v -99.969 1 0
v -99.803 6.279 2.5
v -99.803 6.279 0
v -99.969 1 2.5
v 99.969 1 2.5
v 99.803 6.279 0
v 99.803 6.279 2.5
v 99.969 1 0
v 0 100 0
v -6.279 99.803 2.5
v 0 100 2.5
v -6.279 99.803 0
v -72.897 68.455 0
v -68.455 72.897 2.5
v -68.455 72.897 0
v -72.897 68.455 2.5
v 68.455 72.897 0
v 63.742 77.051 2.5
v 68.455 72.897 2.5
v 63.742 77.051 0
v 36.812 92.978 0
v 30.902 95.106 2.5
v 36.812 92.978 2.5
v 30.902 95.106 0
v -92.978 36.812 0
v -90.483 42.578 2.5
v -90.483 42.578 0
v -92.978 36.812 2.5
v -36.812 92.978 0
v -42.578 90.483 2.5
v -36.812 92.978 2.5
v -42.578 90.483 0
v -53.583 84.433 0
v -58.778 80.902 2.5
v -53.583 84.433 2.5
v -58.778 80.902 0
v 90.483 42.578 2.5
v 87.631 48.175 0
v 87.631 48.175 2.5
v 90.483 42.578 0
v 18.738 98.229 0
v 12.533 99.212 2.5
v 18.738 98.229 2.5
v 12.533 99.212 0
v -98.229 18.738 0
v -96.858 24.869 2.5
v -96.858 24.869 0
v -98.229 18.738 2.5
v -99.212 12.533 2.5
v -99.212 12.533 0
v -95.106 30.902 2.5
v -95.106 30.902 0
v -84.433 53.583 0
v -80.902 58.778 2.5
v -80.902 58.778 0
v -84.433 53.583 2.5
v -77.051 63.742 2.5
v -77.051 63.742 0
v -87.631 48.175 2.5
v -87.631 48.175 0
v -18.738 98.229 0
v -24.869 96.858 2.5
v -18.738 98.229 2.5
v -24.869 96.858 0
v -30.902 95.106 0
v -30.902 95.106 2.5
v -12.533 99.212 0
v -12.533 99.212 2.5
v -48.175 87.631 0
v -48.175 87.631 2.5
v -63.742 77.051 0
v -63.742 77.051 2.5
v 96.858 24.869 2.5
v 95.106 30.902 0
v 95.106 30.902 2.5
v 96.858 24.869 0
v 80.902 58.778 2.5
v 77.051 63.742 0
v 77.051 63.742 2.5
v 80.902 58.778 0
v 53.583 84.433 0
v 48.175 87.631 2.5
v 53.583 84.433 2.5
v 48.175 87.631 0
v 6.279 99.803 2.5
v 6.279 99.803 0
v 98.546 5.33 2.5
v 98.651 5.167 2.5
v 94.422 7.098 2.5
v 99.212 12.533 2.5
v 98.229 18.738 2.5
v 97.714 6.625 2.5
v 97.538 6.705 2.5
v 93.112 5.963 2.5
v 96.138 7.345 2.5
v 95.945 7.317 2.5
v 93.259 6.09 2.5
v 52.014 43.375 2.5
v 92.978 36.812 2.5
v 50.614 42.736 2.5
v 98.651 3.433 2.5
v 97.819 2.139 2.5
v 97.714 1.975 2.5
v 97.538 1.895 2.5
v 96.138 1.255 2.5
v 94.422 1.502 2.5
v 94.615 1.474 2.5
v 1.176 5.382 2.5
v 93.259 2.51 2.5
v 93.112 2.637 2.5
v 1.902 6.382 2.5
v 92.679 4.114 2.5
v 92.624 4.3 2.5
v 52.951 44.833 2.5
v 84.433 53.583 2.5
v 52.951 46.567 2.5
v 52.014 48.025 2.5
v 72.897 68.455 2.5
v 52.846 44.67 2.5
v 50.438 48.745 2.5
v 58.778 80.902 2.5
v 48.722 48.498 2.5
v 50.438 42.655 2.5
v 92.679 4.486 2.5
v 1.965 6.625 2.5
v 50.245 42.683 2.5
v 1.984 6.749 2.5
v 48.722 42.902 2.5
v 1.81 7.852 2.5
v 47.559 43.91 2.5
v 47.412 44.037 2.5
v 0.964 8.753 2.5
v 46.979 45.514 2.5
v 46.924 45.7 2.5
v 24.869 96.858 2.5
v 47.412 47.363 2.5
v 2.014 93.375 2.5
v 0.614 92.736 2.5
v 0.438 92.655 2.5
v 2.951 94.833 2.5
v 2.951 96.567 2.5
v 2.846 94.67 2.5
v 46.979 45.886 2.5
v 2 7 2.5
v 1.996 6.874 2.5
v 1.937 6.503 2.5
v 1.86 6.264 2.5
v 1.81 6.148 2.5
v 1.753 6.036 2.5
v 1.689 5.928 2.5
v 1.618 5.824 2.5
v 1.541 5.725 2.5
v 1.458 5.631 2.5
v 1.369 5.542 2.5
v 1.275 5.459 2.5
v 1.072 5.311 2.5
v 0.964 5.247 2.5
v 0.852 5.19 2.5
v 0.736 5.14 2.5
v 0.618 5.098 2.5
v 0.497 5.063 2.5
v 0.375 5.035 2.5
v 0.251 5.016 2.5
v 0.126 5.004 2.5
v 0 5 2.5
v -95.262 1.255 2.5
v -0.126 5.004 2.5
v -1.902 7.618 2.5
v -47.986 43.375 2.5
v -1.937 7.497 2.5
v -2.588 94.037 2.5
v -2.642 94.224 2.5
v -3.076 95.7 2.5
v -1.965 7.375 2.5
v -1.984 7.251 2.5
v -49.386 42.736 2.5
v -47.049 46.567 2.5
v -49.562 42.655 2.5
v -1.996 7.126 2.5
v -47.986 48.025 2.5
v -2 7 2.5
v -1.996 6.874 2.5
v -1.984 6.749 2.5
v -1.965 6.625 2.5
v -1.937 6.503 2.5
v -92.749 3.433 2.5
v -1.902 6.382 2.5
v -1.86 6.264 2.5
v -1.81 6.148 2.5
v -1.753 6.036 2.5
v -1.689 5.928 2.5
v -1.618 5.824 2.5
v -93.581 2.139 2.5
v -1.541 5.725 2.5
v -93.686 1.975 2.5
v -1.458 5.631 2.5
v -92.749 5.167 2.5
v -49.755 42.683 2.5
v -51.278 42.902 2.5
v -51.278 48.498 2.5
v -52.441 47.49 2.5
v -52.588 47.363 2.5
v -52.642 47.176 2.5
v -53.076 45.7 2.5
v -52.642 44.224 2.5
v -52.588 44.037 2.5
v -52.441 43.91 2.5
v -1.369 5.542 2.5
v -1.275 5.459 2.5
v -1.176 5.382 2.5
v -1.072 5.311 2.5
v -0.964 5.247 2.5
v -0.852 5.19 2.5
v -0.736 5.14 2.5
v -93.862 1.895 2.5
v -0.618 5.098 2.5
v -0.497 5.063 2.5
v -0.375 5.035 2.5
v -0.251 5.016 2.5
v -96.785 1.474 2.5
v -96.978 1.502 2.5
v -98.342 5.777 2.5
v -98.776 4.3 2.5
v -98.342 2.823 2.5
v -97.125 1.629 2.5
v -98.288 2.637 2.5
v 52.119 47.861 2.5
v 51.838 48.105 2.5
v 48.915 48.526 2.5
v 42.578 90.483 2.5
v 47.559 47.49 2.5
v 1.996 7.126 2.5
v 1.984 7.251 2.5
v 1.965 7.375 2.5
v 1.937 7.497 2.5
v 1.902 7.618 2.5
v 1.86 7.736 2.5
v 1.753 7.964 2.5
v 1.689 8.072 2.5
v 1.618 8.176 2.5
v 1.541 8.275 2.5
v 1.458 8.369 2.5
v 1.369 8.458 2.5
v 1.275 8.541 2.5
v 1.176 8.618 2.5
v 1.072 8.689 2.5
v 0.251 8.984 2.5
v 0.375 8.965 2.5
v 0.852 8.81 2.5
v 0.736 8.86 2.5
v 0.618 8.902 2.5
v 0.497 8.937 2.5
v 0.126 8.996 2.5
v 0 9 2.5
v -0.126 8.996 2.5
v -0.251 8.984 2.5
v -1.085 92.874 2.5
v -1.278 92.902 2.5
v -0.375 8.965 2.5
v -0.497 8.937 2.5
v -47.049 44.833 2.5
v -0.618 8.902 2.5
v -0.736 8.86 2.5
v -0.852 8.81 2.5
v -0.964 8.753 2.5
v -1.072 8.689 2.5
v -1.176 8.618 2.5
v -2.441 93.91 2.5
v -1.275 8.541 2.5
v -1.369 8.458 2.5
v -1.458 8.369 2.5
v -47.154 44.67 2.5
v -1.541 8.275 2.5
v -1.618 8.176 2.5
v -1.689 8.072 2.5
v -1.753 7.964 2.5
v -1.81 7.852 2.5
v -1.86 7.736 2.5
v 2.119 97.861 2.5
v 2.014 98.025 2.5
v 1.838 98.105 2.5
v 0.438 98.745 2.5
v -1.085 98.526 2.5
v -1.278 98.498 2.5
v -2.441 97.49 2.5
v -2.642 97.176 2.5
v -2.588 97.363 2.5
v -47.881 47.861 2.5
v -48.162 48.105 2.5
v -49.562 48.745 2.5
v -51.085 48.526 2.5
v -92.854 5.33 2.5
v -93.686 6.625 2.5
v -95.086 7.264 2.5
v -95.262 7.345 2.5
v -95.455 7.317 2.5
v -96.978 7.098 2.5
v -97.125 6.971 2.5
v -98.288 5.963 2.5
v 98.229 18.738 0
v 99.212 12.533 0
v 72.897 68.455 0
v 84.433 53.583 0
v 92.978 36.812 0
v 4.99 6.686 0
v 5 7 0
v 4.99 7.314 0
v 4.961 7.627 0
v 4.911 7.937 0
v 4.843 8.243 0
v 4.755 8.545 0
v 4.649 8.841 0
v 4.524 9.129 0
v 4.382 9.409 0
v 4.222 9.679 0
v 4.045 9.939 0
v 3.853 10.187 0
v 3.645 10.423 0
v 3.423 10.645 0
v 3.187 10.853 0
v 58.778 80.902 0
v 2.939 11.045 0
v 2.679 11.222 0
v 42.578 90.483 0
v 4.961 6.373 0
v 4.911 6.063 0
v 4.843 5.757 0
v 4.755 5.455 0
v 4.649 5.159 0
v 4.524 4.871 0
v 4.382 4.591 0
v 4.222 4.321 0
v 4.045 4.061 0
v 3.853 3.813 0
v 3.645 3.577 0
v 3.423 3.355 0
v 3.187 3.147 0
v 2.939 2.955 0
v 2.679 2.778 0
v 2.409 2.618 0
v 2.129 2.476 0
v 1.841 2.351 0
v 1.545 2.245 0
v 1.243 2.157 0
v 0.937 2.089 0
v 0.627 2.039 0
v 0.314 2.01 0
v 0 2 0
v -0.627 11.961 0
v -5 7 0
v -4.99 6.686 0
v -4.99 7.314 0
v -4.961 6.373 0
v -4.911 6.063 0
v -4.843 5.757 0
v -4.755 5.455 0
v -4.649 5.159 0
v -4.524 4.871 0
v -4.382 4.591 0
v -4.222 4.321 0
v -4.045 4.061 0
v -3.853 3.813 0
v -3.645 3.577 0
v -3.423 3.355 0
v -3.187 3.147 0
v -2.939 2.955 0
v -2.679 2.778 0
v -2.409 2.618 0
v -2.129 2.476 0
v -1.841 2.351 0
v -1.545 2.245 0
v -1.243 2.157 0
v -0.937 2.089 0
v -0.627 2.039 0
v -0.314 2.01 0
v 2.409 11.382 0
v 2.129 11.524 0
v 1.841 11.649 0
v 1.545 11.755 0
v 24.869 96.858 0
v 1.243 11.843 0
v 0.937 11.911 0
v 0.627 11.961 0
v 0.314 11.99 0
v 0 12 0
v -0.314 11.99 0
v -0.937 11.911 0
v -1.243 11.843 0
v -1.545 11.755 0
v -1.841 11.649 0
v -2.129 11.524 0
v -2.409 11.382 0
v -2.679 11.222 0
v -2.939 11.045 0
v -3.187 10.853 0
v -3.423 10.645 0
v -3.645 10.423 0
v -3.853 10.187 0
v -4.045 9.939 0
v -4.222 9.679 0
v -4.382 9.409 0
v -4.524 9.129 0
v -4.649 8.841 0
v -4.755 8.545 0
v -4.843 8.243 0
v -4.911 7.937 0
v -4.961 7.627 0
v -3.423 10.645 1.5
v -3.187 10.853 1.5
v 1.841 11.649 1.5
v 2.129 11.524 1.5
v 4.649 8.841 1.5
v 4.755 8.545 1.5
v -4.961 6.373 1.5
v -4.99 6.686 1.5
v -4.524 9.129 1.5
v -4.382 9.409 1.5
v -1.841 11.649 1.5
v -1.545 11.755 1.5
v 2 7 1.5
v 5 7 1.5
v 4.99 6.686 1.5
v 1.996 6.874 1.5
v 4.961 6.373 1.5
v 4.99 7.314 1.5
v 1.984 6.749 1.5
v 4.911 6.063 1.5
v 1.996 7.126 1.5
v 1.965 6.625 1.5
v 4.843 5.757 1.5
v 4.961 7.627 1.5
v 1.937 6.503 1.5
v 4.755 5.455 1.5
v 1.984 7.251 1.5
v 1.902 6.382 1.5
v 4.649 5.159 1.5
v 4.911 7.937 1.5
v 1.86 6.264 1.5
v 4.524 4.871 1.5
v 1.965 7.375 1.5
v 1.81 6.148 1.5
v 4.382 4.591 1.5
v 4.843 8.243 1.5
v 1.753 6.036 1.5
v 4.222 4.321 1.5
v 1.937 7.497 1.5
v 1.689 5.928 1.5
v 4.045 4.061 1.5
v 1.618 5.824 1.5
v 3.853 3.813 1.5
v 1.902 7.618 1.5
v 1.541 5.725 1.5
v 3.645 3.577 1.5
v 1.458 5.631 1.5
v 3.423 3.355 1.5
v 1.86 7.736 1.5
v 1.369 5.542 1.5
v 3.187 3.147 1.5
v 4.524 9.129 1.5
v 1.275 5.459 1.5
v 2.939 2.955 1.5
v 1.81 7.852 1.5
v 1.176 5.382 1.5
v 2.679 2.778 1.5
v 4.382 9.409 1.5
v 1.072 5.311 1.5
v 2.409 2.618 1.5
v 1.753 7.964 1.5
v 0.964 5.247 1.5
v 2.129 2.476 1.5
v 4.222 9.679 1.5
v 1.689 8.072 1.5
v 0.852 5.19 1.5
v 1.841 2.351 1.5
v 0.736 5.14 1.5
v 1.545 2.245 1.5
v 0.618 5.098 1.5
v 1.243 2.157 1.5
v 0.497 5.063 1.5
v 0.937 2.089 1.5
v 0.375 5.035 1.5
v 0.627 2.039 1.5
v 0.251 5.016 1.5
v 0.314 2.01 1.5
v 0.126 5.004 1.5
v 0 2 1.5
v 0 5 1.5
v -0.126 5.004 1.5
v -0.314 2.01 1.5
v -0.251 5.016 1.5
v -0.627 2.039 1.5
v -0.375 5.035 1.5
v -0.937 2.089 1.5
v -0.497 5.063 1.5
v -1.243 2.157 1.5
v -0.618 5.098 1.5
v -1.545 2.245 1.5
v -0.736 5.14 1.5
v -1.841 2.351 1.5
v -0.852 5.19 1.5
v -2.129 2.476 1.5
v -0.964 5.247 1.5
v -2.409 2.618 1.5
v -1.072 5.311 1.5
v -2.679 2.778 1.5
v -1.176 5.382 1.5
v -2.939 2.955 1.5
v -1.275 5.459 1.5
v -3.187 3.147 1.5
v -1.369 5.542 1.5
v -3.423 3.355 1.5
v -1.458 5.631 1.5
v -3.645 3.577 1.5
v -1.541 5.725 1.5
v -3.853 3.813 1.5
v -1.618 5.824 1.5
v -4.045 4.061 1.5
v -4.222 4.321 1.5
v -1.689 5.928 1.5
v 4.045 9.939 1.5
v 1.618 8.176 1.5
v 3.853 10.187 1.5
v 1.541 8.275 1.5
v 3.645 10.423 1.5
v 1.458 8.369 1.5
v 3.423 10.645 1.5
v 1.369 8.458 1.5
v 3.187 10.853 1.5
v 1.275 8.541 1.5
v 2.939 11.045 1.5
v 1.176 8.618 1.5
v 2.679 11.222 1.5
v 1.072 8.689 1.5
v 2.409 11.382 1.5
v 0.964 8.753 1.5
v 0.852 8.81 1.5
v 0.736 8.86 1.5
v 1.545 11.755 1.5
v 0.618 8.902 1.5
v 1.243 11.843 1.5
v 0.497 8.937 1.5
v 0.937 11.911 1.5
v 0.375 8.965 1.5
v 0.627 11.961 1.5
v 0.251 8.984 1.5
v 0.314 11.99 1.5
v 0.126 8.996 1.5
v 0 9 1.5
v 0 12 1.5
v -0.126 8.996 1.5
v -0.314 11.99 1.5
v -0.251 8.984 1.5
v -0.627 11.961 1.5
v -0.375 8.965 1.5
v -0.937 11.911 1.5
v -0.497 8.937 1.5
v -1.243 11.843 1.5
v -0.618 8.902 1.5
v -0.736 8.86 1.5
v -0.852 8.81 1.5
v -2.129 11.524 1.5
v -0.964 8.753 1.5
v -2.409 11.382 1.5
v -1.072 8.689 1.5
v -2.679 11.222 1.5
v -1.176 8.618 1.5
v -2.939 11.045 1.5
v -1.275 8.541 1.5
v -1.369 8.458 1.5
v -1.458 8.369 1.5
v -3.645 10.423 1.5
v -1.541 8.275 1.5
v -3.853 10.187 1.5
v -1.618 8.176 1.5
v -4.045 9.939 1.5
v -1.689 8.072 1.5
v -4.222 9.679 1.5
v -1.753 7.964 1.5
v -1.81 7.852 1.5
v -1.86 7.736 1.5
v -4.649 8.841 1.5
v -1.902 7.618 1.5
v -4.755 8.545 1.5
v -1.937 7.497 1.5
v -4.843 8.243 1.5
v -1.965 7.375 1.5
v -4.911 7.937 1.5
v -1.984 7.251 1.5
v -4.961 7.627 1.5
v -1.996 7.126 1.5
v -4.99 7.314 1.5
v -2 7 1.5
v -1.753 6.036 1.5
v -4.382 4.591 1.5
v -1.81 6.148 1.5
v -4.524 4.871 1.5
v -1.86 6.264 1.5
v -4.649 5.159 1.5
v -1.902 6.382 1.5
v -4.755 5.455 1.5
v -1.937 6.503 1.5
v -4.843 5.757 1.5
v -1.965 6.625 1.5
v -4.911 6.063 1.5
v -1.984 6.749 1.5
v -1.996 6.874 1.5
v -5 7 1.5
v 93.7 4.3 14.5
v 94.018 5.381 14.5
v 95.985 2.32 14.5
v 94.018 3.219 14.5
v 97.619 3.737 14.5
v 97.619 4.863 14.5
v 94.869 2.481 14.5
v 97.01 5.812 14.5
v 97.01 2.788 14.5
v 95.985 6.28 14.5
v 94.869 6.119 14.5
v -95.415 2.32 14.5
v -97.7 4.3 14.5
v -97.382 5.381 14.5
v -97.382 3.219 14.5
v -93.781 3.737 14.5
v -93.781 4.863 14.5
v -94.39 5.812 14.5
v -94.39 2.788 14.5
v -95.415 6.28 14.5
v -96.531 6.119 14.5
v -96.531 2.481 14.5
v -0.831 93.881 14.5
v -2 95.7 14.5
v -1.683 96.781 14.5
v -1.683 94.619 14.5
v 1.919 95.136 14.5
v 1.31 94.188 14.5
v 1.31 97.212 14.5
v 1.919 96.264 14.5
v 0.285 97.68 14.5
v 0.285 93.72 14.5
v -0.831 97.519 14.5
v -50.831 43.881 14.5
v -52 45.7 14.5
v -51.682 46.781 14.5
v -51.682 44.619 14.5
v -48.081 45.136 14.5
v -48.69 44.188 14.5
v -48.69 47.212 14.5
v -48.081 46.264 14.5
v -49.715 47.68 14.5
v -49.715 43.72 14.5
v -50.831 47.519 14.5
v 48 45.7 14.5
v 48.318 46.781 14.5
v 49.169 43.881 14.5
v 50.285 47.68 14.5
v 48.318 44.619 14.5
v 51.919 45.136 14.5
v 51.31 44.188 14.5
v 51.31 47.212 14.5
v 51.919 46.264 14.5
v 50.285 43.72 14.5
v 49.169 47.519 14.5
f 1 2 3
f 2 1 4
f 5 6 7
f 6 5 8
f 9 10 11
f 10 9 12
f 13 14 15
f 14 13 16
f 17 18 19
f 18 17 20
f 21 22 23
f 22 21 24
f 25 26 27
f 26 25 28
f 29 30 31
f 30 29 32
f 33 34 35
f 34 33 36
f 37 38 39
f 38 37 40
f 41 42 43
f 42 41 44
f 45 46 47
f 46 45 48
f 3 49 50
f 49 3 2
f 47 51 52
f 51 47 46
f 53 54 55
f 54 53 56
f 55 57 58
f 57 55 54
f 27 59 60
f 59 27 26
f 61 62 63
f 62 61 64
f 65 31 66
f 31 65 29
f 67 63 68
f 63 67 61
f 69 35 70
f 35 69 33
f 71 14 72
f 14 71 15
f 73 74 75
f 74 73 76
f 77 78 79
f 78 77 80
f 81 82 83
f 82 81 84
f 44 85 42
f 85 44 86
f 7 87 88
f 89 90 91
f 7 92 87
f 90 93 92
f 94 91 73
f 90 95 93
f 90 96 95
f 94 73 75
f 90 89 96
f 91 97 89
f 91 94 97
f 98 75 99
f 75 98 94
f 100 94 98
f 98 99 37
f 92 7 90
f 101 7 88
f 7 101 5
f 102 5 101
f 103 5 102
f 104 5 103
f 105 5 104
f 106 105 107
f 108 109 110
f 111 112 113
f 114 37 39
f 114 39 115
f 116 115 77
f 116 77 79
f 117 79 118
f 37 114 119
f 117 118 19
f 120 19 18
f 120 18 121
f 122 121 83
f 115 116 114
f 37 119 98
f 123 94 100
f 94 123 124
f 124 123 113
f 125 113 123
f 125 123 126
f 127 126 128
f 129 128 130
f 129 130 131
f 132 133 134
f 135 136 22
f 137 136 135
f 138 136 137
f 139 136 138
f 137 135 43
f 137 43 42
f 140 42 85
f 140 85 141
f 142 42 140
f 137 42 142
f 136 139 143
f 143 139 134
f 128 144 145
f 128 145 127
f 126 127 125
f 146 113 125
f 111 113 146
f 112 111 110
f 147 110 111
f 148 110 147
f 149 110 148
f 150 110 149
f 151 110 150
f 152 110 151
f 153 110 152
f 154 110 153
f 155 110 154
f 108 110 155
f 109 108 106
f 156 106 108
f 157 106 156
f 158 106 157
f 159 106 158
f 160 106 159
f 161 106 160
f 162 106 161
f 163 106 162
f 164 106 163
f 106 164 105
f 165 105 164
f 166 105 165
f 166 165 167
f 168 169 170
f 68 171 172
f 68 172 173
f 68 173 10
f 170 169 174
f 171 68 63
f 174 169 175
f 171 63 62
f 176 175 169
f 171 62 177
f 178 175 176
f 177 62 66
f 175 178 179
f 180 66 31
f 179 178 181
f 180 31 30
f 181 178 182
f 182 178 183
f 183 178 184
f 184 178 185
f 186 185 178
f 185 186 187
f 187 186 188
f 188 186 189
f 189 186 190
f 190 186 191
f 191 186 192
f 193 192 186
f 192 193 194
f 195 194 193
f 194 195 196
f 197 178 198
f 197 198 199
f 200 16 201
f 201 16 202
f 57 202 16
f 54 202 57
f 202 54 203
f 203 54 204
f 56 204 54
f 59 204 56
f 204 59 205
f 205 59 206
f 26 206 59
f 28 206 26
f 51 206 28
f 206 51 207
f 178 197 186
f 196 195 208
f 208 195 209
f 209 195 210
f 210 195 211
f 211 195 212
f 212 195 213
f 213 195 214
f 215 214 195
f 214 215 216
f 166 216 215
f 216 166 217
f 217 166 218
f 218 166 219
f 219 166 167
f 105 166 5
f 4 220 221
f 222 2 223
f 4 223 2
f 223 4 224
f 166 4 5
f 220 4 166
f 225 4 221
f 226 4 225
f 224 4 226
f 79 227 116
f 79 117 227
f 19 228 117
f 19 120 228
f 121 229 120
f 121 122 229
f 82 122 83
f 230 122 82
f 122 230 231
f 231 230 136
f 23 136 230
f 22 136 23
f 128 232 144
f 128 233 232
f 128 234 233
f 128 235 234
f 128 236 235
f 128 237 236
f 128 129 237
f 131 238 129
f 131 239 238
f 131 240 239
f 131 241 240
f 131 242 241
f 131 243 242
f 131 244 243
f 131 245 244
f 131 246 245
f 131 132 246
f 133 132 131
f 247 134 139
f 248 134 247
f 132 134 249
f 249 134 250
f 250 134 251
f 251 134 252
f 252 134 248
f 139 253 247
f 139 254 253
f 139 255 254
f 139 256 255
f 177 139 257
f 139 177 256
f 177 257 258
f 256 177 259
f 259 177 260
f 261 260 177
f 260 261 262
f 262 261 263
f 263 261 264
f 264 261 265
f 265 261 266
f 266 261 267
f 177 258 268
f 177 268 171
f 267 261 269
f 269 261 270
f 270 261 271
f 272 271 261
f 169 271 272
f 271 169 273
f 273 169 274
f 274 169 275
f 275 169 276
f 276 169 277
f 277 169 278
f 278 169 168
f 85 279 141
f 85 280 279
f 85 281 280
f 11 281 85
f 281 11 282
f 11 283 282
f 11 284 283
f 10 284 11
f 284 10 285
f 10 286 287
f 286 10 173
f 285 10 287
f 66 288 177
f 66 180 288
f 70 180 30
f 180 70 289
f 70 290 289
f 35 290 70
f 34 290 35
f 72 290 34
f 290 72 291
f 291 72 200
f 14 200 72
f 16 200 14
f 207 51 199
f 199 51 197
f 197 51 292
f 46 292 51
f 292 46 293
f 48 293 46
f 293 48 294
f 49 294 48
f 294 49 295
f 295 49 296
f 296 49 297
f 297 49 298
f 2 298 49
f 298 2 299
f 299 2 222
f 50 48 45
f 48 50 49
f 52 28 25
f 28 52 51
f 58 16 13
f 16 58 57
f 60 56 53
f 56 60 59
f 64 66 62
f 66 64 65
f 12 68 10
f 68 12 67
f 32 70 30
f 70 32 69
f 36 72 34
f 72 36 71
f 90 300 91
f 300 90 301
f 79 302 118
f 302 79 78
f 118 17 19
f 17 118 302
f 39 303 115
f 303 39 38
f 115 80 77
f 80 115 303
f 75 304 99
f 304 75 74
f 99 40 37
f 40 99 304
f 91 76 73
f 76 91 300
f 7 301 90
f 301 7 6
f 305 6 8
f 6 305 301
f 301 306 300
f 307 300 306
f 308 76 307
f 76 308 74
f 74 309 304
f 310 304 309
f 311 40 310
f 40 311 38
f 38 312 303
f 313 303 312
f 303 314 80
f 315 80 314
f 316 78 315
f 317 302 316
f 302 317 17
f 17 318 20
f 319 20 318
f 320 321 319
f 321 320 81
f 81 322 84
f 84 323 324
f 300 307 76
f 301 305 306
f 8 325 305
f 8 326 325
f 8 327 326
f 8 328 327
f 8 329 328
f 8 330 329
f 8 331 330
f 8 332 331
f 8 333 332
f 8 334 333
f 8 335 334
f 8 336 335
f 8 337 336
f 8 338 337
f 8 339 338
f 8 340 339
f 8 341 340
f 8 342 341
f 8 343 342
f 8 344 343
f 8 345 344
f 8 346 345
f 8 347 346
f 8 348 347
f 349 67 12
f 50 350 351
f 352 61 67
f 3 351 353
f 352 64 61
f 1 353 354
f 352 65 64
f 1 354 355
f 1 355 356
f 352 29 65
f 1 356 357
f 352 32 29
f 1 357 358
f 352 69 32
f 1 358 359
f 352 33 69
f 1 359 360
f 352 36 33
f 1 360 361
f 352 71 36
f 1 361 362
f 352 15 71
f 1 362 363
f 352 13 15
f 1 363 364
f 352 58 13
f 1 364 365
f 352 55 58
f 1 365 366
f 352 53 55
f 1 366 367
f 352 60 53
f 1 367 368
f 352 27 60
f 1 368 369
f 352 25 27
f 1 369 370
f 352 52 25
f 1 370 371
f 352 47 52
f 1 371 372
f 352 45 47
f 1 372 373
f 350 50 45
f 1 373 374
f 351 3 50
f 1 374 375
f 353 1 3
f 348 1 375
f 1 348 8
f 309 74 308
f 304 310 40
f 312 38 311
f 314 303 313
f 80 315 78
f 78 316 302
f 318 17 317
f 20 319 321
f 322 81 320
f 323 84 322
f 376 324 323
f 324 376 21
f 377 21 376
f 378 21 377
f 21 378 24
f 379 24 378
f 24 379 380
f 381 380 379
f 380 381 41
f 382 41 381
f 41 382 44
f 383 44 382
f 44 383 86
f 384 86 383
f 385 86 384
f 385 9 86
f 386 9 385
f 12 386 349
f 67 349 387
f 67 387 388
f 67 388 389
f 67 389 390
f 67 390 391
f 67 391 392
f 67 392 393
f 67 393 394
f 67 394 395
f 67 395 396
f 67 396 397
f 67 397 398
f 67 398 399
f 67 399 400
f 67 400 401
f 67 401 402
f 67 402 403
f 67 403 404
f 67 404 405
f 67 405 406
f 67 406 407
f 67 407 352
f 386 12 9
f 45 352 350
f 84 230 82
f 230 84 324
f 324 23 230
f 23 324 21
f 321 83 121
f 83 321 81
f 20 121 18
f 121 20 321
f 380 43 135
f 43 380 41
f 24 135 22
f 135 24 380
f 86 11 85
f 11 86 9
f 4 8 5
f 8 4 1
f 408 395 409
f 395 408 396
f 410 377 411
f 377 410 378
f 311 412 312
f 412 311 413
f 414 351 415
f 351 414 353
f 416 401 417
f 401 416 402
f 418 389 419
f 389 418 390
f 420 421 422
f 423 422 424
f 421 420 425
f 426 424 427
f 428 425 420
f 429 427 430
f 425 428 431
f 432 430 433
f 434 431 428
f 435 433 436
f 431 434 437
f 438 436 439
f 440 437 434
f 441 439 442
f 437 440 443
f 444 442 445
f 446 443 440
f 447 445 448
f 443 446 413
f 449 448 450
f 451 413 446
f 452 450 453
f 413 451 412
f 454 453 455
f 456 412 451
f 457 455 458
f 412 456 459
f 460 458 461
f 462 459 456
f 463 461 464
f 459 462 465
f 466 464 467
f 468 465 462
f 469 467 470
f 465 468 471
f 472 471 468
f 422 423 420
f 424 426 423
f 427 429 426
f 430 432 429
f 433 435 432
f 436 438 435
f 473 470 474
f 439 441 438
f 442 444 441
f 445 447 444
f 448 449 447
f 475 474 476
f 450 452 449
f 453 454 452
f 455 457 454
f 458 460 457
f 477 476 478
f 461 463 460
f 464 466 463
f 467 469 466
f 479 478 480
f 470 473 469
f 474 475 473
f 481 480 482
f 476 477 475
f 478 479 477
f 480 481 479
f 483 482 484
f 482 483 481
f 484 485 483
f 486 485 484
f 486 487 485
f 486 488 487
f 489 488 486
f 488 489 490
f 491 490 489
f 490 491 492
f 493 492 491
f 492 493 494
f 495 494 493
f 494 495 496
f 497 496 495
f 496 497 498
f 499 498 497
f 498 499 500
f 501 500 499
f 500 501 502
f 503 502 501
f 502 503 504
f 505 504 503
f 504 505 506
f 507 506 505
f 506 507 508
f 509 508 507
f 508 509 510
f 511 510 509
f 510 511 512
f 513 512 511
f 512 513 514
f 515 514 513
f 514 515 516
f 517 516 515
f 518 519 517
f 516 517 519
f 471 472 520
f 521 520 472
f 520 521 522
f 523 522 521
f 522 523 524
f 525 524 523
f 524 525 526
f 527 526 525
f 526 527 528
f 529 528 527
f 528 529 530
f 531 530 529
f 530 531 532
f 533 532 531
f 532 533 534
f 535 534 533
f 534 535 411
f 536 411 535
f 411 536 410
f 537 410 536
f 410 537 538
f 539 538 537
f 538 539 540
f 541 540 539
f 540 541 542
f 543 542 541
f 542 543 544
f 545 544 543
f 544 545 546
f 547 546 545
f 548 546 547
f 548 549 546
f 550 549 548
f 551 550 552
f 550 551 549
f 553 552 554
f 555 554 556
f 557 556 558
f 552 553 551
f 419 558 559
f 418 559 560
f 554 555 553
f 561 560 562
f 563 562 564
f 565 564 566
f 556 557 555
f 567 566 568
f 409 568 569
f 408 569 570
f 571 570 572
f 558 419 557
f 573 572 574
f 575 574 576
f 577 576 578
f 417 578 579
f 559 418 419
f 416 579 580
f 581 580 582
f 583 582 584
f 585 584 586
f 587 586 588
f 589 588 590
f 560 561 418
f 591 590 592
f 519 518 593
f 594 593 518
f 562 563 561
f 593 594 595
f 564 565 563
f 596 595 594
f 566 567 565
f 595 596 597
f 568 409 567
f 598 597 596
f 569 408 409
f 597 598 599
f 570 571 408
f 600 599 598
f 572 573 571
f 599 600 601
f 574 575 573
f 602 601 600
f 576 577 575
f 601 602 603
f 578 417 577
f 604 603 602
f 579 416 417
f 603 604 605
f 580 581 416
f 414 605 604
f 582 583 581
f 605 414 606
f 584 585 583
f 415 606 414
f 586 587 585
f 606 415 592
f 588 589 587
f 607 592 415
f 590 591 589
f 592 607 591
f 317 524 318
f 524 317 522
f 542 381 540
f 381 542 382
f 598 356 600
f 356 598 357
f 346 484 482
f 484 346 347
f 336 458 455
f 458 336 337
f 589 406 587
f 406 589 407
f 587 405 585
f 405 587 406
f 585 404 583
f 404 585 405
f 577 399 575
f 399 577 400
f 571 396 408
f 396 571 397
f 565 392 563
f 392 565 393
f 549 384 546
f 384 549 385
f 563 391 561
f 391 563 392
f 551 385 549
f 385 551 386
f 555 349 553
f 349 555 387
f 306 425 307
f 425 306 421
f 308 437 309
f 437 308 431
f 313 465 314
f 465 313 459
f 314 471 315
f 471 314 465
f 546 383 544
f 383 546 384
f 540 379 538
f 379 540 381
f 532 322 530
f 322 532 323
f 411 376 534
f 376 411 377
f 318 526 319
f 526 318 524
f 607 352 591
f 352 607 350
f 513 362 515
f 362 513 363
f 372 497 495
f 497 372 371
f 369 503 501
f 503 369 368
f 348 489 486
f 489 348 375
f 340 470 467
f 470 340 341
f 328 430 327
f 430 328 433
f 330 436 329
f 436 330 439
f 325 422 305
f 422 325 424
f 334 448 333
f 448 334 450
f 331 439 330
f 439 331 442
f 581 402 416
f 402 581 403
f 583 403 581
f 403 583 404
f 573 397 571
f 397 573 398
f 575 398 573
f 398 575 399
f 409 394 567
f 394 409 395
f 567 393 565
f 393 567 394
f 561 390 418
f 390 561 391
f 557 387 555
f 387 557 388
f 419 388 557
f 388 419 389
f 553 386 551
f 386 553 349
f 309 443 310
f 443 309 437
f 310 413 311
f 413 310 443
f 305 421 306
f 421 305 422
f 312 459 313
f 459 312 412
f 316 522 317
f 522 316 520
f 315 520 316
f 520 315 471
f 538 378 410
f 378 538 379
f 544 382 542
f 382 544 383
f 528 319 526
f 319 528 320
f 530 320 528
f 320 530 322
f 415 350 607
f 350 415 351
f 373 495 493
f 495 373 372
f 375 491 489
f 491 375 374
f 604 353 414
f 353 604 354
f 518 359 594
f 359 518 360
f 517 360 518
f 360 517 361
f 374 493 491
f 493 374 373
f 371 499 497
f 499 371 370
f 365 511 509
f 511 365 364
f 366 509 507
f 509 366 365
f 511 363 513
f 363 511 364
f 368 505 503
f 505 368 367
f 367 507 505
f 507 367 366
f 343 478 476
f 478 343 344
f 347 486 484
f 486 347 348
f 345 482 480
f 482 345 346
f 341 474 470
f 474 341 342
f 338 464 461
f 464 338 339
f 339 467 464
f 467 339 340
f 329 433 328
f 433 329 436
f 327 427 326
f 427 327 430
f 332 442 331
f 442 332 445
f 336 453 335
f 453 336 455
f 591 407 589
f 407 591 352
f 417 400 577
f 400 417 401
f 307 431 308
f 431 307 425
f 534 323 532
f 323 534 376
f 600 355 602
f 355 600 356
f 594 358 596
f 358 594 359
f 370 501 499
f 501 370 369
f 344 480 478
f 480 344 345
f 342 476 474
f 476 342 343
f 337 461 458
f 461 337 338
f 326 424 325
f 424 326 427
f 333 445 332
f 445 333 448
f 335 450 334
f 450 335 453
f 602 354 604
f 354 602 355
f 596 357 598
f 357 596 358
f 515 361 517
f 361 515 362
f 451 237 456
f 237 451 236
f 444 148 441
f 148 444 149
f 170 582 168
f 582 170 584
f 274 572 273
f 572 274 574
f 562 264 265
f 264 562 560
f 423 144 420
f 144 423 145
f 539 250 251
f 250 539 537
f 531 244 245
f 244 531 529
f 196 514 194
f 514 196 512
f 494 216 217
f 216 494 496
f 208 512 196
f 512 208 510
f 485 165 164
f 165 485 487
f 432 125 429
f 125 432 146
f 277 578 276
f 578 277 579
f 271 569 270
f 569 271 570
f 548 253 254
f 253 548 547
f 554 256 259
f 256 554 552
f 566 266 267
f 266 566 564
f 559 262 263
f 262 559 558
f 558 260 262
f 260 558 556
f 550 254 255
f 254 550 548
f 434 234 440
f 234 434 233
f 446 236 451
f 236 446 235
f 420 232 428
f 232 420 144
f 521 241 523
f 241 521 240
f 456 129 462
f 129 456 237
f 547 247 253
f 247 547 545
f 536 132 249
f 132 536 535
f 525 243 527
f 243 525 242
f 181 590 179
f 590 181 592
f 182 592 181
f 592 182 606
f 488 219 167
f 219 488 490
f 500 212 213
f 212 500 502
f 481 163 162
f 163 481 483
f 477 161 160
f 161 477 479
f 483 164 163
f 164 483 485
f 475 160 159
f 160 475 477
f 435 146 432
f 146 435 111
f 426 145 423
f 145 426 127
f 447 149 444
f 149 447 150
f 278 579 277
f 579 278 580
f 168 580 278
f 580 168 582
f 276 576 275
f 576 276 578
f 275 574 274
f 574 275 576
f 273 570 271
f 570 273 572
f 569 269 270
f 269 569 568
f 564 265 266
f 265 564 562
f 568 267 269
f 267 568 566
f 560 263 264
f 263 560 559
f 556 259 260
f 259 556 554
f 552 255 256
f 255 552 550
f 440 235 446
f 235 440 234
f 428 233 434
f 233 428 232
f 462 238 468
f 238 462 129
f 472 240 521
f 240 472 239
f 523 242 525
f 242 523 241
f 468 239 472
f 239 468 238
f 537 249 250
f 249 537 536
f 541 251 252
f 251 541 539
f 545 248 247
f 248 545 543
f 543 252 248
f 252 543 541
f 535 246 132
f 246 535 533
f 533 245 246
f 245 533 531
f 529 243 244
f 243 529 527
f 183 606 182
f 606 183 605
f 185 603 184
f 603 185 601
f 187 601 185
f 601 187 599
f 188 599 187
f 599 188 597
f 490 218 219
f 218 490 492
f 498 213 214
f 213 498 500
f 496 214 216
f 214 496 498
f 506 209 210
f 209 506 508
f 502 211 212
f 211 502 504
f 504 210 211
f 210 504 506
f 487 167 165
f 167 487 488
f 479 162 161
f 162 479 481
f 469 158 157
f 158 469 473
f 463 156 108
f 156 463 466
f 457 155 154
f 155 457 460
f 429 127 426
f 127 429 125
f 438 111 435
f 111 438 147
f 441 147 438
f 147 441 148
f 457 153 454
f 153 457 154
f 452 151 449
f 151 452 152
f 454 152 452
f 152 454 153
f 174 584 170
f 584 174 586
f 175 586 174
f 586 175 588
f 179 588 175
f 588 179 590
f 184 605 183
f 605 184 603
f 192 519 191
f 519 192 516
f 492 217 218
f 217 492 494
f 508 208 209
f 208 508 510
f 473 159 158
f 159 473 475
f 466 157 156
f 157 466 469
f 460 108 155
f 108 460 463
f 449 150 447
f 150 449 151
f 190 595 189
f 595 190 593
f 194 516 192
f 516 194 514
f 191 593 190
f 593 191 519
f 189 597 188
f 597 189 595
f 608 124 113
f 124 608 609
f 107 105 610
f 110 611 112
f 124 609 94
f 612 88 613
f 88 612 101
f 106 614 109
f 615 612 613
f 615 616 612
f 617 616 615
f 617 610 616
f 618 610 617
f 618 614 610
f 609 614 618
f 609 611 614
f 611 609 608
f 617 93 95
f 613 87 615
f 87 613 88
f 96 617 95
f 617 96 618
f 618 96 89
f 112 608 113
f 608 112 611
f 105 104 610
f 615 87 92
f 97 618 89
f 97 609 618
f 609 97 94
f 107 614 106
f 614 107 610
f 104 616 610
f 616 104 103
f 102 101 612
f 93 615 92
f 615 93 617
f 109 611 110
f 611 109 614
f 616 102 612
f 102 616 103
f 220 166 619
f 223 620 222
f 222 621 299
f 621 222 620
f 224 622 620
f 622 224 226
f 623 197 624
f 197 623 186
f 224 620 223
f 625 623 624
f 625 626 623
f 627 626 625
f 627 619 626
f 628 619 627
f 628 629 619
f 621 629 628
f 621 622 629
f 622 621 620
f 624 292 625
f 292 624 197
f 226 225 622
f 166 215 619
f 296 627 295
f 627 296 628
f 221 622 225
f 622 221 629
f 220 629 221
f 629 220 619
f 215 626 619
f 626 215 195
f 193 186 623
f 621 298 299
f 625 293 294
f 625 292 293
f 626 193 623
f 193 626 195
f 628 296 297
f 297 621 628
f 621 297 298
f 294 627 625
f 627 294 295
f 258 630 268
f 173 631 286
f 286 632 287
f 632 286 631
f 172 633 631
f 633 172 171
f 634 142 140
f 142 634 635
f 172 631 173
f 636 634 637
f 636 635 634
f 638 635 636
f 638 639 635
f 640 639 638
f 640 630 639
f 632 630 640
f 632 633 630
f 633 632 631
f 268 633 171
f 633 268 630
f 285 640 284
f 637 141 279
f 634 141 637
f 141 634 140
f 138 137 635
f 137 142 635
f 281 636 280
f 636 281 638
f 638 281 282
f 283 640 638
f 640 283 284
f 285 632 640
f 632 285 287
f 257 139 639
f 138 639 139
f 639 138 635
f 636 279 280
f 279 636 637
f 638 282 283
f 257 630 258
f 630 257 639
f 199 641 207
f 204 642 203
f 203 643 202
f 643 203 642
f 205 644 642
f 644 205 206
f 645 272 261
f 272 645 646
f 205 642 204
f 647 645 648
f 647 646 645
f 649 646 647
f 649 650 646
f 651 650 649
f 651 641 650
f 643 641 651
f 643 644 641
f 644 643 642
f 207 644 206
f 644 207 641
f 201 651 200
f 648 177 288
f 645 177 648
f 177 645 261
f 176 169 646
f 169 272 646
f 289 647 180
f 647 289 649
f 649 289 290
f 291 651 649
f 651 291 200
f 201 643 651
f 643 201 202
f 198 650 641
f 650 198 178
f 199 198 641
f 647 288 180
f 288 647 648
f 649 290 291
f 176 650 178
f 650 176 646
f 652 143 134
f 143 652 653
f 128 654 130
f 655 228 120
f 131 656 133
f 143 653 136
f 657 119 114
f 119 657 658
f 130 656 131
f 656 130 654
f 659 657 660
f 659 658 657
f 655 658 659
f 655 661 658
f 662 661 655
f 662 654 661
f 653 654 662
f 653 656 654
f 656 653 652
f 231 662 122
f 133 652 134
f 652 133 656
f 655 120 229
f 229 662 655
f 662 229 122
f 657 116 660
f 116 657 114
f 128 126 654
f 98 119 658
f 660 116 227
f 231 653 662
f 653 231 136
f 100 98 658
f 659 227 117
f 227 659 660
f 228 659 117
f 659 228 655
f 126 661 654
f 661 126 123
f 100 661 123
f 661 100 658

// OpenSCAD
h = 12;
pared = 2.5;
diametro = 200;

pataR1 = 2;
pataR2 = 3.3;
torR = 5;


translate([0,0,h+pared])
rotate([0,180,0])
creaBase();



module creaBase()
{
translate([0,0,h])
difference()
{
    cylinder(r=(diametro/2),pared,$fn=100);
    
    translate([-(diametro+2)/2,-(diametro),-0.1])
    cube([diametro+2,diametro+1,pared+1]);
    
    translate([0,torR+2,1])
    cylinder(r=torR,pared,$fn=100);
    
    translate([0,torR+2,-1])
    cylinder(r=2,pared*2,$fn=100);
    
}

translate([-(diametro/2)+pataR2+1,pataR2+1,0])
cylinder(r1=pataR1,r2=pataR2,h+pared);

translate([(diametro/2)-pataR2-1,pataR2+1,0])
cylinder(r1=pataR1,r2=pataR2,h+pared);

translate([0,(diametro/2)-pataR2-1,0])
cylinder(r1=pataR1,r2=pataR2,h+pared);

translate([(diametro/4),(diametro/4)-pataR2-1,0])
cylinder(r1=pataR1,r2=pataR2,h+pared);

translate([-(diametro/4),(diametro/4)-pataR2-1,0])
cylinder(r1=pataR1,r2=pataR2,h+pared);

}
